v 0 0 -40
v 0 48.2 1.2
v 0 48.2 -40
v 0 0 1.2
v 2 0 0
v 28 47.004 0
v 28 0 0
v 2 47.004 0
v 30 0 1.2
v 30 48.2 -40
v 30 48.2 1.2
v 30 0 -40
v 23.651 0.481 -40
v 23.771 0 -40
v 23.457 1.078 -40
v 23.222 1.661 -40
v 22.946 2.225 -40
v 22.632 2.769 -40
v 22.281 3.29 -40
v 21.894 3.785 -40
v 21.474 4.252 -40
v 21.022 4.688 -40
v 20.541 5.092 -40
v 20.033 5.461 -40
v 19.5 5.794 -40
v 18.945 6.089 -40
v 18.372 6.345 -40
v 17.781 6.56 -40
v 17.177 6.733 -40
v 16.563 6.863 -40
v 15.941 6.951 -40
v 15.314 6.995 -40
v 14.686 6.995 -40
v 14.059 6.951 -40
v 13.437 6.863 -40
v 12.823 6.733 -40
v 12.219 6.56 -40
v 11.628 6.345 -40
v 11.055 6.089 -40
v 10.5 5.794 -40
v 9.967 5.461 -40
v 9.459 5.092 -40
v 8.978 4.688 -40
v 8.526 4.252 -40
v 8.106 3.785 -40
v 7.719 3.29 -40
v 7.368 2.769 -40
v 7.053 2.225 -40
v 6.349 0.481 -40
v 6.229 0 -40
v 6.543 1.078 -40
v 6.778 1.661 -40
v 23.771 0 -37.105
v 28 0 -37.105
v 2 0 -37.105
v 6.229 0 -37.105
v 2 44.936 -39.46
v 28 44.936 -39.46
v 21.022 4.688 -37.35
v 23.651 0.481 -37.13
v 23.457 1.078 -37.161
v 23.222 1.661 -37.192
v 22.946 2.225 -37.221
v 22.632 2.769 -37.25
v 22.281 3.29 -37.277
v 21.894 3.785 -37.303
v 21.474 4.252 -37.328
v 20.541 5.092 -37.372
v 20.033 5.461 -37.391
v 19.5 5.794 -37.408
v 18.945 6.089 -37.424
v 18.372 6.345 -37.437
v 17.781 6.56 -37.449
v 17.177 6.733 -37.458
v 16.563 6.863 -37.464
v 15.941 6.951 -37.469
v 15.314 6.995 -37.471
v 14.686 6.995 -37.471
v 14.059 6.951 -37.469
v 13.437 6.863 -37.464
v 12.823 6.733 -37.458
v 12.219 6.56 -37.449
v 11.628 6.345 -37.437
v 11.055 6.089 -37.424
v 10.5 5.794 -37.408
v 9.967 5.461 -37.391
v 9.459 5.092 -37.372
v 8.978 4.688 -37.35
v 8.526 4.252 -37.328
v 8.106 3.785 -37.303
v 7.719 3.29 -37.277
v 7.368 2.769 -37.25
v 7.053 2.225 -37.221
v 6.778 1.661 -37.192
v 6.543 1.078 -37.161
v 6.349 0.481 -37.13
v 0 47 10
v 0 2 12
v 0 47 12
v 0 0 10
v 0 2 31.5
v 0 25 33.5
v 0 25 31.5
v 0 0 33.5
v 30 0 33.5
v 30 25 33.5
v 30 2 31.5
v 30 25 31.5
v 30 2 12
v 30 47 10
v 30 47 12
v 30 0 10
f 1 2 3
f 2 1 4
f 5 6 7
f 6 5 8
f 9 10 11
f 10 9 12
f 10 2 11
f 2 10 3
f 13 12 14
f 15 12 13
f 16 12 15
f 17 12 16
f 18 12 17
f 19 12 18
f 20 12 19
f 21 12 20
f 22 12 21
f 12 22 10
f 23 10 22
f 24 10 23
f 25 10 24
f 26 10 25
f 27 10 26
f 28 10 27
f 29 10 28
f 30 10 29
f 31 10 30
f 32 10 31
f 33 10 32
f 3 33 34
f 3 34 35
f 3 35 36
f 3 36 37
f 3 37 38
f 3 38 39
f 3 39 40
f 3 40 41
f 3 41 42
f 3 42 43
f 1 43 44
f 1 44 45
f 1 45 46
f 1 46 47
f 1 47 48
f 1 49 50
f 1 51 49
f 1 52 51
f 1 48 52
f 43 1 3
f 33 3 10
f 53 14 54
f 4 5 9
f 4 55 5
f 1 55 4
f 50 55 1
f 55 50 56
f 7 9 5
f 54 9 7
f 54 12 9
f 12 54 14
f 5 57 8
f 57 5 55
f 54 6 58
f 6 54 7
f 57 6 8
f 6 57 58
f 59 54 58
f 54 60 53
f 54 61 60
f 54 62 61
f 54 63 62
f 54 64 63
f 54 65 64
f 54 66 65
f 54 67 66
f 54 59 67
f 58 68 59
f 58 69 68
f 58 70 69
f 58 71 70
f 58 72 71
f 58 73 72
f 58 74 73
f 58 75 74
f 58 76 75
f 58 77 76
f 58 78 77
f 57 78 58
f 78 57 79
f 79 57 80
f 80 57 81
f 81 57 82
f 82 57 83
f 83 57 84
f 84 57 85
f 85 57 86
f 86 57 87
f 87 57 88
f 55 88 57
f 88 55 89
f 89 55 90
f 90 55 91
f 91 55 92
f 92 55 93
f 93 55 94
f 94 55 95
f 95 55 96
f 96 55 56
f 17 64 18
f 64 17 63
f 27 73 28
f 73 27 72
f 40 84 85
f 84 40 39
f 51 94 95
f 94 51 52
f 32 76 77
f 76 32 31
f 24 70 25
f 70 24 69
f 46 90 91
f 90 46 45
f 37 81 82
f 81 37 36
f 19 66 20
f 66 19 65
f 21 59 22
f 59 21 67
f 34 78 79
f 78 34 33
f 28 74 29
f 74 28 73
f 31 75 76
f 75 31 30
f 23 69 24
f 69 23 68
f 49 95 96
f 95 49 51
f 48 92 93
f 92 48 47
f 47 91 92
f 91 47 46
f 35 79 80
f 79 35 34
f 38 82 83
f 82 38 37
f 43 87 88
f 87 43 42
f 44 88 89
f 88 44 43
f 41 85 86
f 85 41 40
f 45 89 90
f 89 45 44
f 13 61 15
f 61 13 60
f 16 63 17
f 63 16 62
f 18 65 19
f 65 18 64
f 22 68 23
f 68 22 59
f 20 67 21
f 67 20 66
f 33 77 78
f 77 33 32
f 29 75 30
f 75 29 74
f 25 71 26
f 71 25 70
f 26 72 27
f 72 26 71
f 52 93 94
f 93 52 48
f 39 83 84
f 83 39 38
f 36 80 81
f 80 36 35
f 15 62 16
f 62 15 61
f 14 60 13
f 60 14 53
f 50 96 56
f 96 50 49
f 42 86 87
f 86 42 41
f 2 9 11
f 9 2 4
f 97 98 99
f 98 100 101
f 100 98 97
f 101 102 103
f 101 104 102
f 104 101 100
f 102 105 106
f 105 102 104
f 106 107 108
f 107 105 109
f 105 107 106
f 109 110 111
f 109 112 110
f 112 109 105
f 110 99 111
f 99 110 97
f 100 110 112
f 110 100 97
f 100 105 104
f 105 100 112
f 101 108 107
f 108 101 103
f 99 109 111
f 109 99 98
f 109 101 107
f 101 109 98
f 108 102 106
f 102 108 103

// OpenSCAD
HOLDER_SIZE_Z = 19.5; // 19mm 
BLADE_SIZE_X = 26;    // 25mm
BLADE_SIZE_Y = 45;

BOX_SIZE_X = BLADE_SIZE_X + 2 + 2;
BOX_SIZE_Y = BLADE_SIZE_Y +2;

BOX_SIZE_Z = 40;


module upper_part() {
    difference() {
        cube([BOX_SIZE_X, BOX_SIZE_Y, HOLDER_SIZE_Z + 2 + 2]);
        translate([-1, 2, 2]) {
            cube([40, BLADE_SIZE_Y + 10, HOLDER_SIZE_Z]);
        }
        translate([-1, 25, HOLDER_SIZE_Z]) {
            cube([BOX_SIZE_X + 3, 300, 10]);
        }
    }
}


translate([0, 0, 10]) {
    upper_part();
}

union() {
    cube([BOX_SIZE_X, BOX_SIZE_Y +1.2, 1.2]);
    translate([0, 0, - BOX_SIZE_Z ]) {
        difference() {
            cube([BOX_SIZE_X, BOX_SIZE_Y +1.2, BOX_SIZE_Z]);
            translate([2, -2, 3]) {
                rotate([-3, 0, 0])
                cube([BLADE_SIZE_X, BLADE_SIZE_Y +2 , BOX_SIZE_Z ]);
            }
            translate([2, -1, 4]) {
                cube([BLADE_SIZE_X, BLADE_SIZE_Y +1, BOX_SIZE_Z]);
            }
            translate([BOX_SIZE_X / 2, -2, - 10]) {
                cylinder(d=18, h=30, $fn=90);
            }
        }
    }
}
